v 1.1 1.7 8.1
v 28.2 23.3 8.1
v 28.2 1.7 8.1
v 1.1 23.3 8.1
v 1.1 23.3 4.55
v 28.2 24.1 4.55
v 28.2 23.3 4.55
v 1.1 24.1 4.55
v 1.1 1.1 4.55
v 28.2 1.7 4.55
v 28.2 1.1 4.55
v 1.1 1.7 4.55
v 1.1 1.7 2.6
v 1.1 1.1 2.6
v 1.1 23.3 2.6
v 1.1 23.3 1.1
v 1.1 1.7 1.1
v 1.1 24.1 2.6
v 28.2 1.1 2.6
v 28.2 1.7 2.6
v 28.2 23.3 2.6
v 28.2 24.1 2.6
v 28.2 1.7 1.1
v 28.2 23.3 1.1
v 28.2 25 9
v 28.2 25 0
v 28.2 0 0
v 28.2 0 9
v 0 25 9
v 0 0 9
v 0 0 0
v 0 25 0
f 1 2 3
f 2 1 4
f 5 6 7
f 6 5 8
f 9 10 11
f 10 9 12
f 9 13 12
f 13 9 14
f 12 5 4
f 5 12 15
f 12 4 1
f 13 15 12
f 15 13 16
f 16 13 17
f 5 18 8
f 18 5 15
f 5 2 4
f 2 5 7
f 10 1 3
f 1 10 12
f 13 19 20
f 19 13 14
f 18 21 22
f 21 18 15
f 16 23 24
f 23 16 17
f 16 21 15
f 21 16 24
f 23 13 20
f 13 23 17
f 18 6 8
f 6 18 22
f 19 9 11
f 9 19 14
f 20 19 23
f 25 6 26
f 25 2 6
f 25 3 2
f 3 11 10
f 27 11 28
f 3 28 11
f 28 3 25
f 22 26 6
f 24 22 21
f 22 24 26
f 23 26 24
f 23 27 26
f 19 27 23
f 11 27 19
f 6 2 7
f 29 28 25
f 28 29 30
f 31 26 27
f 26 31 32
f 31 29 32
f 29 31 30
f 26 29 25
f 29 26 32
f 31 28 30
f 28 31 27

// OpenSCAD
$fn = 60;

e_m = 0.1;      //3D-printing error margin

//circuit board
cb_w = 26;    //circuit board width
cb_d = 22.8;    //circuit board depth
cb_h = 1.75;     //circuit board height

//circuit board placement
//cb_p_h = 4;   //height
cb_p_s_d = 0.7;   //sloth depth
cb_b_s = 0;     // back slot yes(1) or no(0)
//circuit board height needs to be changed by the circuit board height

//component opening
cb_p_h_t = 3.55;   //height top
cb_p_h_b = 1.5;   //height bottom

//casing
c_t = 1;        //Case thick
c_w = c_t*2+e_m*2+cb_w;       //case width
c_d = c_t*2+e_m*2+cb_d;       //case depth
c_h = c_t*2+e_m*2+cb_h+cb_p_h_b+cb_p_h_t;       //case height
echo(c_w); //68.7
echo(c_d); //48.6
echo(c_h); //22.8
//Case height needs to be changed by the circuit board height

circuit_holder();

module circuit_holder(){
    difference(){
        cube([c_w, c_d, c_h]);
        pcb_no_go_zone();
    }
}

module pcb_no_go_zone(){
    union(){
        union(){
            if ( cb_b_s == 1){
                translate([(c_w-cb_w)+c_t-e_m*2+e_m,c_t+cb_p_s_d,(cb_p_h_b+e_m + c_t)+cb_h+e_m*2])
                cube([(cb_w+e_m*2)-cb_p_s_d + c_t, (cb_d+e_m*2)-cb_p_s_d*2, cb_p_h_t]);
                translate([(c_w-cb_w)+c_t-e_m*2+e_m,c_t+cb_p_s_d,(cb_p_h_b+e_m + c_t) - cb_p_h_b])
                cube([(cb_w+e_m*2)-cb_p_s_d+ c_t, (cb_d+e_m*2)-cb_p_s_d*2, cb_p_h_b]);
            }
            else{
                translate([(c_w-cb_w)-c_t-e_m*2+e_m,c_t+cb_p_s_d,(cb_p_h_b+e_m+c_t)+cb_h+e_m*2])
                cube([(cb_w+e_m*2)+ c_t, (cb_d+e_m*2)-cb_p_s_d*2, cb_p_h_t]);
                translate([(c_w-cb_w)-c_t-e_m*2+e_m,c_t+cb_p_s_d,(cb_p_h_b+e_m+c_t) - cb_p_h_b])
                cube([(cb_w+e_m*2)+ c_t, (cb_d+e_m*2)-cb_p_s_d*2, cb_p_h_b]);
            }
        }
        translate([(c_w-cb_w)-c_t-e_m*2+e_m,c_t+e_m,cb_p_h_b+e_m+c_t])
        cube([cb_w+e_m*2+ c_t, cb_d+e_m*2, cb_h+e_m*2]);
    }
}
